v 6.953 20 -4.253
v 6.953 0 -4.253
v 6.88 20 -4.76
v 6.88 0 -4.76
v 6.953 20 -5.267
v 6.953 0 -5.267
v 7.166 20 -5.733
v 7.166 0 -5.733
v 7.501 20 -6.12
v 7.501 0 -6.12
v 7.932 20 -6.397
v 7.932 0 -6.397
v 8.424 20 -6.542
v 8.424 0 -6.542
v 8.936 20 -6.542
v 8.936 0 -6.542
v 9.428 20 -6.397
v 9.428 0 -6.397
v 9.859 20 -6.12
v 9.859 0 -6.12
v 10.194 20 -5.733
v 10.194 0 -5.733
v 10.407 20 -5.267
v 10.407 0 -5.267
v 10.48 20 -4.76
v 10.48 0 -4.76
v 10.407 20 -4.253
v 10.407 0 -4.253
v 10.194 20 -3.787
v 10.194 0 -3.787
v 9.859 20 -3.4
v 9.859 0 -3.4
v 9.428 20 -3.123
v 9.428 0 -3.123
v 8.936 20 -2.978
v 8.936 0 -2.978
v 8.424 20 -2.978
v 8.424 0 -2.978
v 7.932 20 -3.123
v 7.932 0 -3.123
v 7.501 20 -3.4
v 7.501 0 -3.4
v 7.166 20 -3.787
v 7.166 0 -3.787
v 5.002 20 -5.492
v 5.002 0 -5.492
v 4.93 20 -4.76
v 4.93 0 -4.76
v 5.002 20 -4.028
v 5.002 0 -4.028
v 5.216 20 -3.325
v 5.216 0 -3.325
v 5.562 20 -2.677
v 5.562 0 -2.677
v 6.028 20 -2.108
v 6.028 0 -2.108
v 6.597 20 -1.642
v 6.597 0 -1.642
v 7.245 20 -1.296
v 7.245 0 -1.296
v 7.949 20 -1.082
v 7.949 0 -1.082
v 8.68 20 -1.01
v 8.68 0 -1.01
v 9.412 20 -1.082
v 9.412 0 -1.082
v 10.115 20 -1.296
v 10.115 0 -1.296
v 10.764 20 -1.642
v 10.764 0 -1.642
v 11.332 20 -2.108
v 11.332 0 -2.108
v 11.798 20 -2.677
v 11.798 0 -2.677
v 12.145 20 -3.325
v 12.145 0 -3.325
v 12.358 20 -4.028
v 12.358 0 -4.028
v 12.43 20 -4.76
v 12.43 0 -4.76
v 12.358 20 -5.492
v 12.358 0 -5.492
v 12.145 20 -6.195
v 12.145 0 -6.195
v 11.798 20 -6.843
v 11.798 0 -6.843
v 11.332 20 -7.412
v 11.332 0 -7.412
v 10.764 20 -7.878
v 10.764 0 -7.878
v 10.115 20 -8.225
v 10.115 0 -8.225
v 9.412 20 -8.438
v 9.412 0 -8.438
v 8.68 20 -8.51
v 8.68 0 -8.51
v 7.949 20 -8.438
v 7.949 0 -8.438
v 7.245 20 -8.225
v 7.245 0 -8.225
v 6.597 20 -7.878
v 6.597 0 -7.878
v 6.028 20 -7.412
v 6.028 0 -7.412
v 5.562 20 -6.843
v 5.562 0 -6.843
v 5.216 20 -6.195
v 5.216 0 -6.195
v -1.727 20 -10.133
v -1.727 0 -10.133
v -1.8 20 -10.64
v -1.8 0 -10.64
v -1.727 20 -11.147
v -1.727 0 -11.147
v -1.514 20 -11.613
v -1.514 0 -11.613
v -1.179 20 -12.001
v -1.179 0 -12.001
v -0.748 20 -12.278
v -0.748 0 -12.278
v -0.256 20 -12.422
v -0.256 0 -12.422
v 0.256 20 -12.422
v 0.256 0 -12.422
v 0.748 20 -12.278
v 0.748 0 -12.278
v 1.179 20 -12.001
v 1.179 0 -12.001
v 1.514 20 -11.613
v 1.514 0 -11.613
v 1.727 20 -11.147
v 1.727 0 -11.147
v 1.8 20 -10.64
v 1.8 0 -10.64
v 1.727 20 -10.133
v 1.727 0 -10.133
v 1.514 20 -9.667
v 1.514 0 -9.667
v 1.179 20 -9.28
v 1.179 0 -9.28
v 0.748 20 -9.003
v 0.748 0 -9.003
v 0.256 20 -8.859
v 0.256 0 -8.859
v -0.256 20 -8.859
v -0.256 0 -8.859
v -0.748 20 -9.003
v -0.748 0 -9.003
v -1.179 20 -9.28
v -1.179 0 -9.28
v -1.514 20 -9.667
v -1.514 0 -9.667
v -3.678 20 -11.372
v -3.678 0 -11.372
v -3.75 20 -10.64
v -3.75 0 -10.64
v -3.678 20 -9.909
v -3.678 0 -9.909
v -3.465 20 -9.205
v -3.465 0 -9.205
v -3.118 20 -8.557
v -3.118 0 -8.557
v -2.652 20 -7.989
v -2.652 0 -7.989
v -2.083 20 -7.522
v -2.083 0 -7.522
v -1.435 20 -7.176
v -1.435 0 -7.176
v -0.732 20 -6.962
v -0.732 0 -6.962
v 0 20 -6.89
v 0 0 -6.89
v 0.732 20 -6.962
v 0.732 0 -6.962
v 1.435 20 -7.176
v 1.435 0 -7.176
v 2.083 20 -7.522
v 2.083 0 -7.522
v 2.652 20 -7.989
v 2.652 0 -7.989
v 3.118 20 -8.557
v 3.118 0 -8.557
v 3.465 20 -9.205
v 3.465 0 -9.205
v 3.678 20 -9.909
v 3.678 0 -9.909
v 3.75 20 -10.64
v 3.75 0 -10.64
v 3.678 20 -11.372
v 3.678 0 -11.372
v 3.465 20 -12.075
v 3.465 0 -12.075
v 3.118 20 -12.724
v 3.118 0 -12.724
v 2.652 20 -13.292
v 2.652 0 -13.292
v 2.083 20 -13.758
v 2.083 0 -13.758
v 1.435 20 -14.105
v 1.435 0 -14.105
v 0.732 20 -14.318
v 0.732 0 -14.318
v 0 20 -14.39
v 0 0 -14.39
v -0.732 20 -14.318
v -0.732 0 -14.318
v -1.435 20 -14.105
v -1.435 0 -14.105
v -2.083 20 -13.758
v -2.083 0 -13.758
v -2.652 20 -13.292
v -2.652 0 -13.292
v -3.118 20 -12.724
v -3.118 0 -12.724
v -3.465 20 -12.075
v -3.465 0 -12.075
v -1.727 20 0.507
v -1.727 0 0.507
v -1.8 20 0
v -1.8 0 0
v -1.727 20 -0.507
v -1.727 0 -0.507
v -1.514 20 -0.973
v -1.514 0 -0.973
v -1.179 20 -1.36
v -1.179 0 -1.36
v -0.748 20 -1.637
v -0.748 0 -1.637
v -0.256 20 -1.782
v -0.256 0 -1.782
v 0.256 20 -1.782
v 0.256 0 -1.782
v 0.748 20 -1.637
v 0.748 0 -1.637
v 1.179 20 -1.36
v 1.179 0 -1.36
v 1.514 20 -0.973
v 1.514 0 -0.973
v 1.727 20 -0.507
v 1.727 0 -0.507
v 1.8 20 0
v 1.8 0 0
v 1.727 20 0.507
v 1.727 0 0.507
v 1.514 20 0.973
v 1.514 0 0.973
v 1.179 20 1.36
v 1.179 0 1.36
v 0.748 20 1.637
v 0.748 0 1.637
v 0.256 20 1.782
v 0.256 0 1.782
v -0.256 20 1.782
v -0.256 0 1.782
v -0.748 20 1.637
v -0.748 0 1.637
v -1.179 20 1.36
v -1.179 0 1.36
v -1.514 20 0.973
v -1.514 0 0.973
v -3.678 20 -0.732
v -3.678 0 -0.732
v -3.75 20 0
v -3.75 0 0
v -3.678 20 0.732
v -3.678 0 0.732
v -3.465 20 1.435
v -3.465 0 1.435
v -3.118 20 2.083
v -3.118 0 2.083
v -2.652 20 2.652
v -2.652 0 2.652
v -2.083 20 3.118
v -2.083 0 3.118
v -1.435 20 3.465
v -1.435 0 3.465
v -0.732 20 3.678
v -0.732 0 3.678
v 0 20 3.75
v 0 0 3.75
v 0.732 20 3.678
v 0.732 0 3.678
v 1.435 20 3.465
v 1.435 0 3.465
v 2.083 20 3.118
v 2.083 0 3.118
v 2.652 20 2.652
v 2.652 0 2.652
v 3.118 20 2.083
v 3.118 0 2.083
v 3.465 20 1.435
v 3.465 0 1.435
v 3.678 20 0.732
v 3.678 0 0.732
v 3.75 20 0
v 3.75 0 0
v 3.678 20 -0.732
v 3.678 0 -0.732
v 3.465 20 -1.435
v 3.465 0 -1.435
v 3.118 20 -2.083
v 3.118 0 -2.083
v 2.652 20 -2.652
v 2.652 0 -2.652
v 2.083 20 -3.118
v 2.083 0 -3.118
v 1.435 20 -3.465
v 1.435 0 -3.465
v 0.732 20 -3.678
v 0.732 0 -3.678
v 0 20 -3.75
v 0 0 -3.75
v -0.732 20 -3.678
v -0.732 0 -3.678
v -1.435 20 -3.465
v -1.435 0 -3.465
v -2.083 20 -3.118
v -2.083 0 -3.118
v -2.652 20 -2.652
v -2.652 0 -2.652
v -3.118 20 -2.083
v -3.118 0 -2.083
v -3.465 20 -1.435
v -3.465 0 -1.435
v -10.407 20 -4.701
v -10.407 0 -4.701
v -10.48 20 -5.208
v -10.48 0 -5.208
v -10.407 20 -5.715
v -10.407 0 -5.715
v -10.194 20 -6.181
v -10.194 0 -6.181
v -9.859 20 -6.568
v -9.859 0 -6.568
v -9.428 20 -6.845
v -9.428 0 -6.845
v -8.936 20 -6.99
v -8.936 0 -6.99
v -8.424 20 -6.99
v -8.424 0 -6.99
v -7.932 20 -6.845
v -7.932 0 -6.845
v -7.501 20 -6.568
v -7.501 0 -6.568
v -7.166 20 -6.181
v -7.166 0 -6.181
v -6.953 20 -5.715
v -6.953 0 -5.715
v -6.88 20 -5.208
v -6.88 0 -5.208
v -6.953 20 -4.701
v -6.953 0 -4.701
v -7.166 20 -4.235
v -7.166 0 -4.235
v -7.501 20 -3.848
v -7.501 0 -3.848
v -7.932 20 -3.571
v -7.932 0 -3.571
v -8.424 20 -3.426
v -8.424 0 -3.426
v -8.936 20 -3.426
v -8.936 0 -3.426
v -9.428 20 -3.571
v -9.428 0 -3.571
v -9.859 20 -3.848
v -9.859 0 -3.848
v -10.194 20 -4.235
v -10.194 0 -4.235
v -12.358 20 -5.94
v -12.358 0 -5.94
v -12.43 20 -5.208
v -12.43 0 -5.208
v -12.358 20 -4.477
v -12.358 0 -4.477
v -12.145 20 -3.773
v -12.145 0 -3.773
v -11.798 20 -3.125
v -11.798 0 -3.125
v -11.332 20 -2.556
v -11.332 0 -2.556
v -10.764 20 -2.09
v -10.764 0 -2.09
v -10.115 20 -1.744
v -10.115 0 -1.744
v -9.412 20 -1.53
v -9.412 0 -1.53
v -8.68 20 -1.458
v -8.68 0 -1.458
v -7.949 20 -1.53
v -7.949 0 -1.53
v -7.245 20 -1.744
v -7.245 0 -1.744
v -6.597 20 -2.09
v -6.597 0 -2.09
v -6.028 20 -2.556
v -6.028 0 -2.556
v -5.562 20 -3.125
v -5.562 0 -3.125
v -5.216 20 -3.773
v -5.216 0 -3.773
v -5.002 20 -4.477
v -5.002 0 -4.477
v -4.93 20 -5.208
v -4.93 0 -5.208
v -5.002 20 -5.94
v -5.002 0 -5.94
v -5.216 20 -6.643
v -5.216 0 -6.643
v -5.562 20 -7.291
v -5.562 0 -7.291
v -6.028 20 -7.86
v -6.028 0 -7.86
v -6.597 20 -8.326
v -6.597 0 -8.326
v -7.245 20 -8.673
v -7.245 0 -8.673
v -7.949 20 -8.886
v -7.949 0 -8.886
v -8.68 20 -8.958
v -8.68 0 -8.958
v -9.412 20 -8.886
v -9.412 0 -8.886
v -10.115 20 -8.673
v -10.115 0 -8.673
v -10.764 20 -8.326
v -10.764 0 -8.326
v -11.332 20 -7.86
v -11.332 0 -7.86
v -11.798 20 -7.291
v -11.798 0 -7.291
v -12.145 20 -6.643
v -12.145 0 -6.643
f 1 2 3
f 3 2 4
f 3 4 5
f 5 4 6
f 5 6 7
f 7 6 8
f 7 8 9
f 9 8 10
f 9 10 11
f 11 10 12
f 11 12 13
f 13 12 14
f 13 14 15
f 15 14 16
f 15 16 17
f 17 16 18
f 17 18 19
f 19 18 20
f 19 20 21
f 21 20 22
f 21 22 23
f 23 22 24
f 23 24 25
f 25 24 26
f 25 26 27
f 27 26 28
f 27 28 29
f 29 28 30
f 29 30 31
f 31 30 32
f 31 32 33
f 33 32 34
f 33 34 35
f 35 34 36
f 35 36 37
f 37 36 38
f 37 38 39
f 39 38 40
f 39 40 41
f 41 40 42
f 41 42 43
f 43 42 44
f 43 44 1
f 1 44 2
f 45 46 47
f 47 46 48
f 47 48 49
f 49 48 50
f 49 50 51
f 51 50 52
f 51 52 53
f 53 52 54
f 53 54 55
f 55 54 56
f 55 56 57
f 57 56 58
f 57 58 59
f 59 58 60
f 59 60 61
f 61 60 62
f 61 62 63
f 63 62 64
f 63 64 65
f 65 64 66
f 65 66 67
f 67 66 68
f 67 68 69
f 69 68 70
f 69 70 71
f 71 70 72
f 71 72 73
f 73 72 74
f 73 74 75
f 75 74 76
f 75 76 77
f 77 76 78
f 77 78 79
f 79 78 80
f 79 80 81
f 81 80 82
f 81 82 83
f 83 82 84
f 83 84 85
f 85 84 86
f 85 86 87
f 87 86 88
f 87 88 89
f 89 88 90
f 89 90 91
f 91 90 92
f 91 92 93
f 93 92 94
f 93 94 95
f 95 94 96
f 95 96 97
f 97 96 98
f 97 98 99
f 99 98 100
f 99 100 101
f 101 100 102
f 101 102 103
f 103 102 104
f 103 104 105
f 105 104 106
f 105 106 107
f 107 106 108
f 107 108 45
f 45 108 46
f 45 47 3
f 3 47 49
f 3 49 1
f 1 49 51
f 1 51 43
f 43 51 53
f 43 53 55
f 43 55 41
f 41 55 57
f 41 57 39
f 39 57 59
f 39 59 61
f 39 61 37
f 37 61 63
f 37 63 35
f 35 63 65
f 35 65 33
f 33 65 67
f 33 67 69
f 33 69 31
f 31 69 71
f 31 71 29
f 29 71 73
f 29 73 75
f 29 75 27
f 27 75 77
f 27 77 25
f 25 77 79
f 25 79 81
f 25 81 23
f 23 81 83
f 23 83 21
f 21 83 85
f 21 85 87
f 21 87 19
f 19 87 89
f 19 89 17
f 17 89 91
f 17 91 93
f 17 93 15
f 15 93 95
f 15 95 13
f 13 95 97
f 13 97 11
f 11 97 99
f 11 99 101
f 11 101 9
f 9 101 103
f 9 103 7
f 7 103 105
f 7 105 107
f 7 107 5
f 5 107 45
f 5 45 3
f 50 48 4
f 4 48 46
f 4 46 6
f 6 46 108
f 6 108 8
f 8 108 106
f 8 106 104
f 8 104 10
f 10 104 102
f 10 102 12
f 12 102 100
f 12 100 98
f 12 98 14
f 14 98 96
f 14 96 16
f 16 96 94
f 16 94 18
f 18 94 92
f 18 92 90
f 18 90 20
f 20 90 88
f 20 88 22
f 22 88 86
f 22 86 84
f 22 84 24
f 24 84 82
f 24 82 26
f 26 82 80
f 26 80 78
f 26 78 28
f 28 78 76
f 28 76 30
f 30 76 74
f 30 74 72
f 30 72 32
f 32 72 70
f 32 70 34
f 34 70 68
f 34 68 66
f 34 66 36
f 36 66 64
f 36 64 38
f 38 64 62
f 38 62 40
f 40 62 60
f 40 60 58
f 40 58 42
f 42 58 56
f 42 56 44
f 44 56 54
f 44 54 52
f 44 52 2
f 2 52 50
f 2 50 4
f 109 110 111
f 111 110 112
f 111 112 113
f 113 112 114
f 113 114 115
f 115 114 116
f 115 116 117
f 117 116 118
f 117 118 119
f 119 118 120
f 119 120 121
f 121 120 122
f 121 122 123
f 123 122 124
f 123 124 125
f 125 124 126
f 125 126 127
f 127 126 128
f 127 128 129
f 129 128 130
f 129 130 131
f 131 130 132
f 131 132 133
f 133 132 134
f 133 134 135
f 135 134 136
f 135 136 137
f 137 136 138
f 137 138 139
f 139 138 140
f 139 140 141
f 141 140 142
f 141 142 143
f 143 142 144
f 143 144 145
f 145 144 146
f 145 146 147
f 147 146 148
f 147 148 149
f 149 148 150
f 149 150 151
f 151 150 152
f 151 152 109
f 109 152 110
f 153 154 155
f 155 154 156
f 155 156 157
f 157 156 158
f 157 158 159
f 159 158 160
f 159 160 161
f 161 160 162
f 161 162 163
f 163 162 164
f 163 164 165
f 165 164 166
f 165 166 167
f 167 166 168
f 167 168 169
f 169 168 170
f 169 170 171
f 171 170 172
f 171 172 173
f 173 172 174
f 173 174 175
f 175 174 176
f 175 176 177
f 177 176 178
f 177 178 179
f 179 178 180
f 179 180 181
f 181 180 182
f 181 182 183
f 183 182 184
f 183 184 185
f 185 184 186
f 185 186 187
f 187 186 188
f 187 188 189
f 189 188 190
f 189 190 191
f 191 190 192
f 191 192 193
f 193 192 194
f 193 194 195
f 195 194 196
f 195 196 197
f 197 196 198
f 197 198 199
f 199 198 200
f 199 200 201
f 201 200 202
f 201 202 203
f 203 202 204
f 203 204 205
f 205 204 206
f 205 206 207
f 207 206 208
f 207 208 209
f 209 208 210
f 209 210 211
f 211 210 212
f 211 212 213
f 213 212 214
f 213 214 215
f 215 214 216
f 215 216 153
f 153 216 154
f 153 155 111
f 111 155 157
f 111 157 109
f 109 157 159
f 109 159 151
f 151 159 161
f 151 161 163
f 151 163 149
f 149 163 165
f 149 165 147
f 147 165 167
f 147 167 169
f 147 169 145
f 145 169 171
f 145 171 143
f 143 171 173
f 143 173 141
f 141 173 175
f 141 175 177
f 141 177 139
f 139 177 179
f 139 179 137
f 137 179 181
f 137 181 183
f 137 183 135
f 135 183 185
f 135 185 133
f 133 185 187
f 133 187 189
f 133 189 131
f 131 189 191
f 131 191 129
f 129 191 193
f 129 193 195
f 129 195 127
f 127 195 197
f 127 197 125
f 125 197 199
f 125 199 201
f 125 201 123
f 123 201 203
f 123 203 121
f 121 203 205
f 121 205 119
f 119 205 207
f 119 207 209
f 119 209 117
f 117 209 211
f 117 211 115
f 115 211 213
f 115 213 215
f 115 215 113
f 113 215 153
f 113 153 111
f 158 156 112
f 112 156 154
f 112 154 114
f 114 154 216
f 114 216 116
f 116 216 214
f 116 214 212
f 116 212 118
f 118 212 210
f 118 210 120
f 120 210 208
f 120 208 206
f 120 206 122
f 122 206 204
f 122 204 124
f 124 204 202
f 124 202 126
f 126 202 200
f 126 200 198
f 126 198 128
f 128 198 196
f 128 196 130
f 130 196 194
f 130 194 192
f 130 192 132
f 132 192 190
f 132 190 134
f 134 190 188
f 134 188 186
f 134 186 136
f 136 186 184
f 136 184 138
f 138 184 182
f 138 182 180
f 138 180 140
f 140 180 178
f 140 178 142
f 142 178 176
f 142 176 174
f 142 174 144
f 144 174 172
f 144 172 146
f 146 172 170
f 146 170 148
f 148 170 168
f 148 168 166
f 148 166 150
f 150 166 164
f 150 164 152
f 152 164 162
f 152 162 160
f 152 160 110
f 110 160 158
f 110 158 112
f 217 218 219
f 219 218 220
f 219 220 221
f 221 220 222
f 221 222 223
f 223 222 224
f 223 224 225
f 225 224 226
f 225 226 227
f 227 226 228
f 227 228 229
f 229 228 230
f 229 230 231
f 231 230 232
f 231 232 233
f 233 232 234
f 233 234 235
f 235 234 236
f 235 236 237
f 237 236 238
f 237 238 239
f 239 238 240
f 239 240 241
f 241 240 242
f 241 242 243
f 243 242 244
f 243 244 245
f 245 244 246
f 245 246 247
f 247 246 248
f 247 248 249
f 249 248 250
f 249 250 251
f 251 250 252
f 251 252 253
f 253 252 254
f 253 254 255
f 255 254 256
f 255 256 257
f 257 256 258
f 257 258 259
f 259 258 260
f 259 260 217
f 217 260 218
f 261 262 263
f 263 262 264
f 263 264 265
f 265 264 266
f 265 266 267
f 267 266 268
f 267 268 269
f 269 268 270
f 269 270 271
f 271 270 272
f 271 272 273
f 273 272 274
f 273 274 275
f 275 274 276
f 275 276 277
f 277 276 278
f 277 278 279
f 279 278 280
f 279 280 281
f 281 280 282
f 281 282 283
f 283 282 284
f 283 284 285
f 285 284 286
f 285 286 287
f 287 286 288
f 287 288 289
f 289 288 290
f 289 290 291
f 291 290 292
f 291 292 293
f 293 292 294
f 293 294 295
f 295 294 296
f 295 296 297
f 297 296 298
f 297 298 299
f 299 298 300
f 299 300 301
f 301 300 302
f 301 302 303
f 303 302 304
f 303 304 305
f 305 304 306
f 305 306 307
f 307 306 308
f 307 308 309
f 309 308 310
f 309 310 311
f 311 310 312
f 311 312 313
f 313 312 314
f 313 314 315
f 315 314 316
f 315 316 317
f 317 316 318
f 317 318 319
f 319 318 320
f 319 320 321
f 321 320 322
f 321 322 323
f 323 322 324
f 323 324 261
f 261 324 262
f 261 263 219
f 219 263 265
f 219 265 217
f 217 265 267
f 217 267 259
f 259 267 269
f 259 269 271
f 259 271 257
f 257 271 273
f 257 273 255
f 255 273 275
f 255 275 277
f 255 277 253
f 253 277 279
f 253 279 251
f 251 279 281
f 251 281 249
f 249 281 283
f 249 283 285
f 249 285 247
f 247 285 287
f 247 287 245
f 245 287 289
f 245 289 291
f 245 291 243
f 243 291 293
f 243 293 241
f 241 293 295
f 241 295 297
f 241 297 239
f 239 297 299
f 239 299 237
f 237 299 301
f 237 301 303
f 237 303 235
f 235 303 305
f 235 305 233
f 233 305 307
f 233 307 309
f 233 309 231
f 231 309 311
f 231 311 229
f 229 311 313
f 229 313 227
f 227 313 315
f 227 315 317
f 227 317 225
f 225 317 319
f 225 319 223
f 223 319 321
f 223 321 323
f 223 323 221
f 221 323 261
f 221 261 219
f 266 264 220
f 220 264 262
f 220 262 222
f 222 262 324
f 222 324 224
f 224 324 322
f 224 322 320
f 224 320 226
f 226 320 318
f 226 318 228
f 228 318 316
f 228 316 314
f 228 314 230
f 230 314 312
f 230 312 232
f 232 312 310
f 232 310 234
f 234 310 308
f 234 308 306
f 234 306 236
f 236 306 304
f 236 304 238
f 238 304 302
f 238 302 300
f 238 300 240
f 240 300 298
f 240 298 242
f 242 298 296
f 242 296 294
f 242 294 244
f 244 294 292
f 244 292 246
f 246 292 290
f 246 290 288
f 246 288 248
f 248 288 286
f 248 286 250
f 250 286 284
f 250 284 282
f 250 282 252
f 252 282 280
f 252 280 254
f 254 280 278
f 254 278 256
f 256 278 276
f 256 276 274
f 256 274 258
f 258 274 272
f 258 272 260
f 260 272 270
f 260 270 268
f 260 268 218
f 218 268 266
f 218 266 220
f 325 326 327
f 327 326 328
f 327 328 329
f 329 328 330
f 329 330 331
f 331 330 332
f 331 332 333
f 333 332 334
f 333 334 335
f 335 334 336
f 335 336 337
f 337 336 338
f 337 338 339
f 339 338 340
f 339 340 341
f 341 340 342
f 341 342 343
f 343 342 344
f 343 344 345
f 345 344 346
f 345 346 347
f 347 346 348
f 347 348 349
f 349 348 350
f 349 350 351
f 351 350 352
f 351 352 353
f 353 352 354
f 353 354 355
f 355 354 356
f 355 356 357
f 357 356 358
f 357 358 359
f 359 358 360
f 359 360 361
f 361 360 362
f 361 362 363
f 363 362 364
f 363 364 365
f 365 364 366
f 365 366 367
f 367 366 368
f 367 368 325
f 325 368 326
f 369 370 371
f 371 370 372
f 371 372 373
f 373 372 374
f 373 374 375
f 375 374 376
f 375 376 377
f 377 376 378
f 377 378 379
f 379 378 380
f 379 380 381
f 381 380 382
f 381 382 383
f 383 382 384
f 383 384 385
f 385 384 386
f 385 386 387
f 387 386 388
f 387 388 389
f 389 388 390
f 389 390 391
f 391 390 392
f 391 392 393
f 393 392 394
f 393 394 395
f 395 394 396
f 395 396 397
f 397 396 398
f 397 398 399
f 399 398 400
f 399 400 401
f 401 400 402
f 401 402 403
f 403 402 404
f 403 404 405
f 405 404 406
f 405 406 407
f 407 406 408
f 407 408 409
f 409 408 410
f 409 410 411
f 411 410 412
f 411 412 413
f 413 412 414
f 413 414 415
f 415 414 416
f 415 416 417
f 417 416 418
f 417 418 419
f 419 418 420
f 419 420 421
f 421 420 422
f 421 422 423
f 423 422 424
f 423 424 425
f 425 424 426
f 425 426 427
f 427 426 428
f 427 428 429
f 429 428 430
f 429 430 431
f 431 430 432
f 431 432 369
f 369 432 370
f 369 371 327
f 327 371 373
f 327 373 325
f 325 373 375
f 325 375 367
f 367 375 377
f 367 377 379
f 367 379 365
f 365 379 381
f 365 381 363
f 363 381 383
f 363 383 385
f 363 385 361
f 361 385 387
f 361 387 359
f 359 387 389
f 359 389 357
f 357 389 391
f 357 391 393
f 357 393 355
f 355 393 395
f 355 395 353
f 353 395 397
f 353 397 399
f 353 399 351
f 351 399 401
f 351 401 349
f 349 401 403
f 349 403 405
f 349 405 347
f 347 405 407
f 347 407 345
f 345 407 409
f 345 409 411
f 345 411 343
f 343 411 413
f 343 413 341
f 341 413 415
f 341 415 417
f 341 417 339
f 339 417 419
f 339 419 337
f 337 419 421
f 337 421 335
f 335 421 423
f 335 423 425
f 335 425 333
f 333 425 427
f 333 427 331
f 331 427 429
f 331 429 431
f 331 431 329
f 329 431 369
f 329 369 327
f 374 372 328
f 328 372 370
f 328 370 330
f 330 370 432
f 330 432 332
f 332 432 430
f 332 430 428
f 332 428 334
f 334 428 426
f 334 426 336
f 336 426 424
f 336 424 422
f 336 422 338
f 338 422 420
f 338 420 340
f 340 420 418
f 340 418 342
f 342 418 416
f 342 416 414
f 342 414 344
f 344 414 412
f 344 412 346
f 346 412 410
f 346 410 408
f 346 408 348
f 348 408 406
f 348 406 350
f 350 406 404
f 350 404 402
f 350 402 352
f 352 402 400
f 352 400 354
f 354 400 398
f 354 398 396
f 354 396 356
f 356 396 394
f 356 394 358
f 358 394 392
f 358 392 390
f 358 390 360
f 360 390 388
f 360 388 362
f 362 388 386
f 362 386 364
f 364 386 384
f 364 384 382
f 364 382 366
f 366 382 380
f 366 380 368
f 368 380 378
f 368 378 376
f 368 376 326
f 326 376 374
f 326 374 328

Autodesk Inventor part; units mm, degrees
ref_plane "YZ Plane" through (0, 0, 0) normal (1, 0, 0) x (0, 1, 0)
ref_plane "XZ Plane" through (0, 0, 0) normal (0, 1, 0) x (-1, 0, 0)
ref_plane "XY Plane" through (0, 0, 0) normal (0, 0, 1) x (1, 0, 0)
sketch "Sketch1" plane through (0, 0, 0) normal (0, 1, 0) x (-1, 0, 0)
  circle A0 centre (0, 0) radius 1.8
  circle A1 centre (0, 0) radius 3.75
  circle A2 centre (0, -10.6402) radius 1.8
  circle A3 centre (0, -10.6402) radius 3.75
  circle A4 centre (8.6801, -5.2081) radius 1.8
  circle A5 centre (8.6801, -5.2081) radius 3.75
  circle A6 centre (-8.6801, -4.7601) radius 1.8
  circle A7 centre (-8.6801, -4.7601) radius 3.75
  dimension "d0" = 3.6
  dimension "d1" = 7.5
  dimension "d4" = 3.6
  dimension "d5" = 7.5
  dimension "d6" = 3.6
  dimension "d7" = 7.5
  dimension "d8" = 3.6
  dimension "d9" = 7.5
extrude "Extrusion1" add sketch "Sketch1" along normal blind 20
properties part number "Standoff"
